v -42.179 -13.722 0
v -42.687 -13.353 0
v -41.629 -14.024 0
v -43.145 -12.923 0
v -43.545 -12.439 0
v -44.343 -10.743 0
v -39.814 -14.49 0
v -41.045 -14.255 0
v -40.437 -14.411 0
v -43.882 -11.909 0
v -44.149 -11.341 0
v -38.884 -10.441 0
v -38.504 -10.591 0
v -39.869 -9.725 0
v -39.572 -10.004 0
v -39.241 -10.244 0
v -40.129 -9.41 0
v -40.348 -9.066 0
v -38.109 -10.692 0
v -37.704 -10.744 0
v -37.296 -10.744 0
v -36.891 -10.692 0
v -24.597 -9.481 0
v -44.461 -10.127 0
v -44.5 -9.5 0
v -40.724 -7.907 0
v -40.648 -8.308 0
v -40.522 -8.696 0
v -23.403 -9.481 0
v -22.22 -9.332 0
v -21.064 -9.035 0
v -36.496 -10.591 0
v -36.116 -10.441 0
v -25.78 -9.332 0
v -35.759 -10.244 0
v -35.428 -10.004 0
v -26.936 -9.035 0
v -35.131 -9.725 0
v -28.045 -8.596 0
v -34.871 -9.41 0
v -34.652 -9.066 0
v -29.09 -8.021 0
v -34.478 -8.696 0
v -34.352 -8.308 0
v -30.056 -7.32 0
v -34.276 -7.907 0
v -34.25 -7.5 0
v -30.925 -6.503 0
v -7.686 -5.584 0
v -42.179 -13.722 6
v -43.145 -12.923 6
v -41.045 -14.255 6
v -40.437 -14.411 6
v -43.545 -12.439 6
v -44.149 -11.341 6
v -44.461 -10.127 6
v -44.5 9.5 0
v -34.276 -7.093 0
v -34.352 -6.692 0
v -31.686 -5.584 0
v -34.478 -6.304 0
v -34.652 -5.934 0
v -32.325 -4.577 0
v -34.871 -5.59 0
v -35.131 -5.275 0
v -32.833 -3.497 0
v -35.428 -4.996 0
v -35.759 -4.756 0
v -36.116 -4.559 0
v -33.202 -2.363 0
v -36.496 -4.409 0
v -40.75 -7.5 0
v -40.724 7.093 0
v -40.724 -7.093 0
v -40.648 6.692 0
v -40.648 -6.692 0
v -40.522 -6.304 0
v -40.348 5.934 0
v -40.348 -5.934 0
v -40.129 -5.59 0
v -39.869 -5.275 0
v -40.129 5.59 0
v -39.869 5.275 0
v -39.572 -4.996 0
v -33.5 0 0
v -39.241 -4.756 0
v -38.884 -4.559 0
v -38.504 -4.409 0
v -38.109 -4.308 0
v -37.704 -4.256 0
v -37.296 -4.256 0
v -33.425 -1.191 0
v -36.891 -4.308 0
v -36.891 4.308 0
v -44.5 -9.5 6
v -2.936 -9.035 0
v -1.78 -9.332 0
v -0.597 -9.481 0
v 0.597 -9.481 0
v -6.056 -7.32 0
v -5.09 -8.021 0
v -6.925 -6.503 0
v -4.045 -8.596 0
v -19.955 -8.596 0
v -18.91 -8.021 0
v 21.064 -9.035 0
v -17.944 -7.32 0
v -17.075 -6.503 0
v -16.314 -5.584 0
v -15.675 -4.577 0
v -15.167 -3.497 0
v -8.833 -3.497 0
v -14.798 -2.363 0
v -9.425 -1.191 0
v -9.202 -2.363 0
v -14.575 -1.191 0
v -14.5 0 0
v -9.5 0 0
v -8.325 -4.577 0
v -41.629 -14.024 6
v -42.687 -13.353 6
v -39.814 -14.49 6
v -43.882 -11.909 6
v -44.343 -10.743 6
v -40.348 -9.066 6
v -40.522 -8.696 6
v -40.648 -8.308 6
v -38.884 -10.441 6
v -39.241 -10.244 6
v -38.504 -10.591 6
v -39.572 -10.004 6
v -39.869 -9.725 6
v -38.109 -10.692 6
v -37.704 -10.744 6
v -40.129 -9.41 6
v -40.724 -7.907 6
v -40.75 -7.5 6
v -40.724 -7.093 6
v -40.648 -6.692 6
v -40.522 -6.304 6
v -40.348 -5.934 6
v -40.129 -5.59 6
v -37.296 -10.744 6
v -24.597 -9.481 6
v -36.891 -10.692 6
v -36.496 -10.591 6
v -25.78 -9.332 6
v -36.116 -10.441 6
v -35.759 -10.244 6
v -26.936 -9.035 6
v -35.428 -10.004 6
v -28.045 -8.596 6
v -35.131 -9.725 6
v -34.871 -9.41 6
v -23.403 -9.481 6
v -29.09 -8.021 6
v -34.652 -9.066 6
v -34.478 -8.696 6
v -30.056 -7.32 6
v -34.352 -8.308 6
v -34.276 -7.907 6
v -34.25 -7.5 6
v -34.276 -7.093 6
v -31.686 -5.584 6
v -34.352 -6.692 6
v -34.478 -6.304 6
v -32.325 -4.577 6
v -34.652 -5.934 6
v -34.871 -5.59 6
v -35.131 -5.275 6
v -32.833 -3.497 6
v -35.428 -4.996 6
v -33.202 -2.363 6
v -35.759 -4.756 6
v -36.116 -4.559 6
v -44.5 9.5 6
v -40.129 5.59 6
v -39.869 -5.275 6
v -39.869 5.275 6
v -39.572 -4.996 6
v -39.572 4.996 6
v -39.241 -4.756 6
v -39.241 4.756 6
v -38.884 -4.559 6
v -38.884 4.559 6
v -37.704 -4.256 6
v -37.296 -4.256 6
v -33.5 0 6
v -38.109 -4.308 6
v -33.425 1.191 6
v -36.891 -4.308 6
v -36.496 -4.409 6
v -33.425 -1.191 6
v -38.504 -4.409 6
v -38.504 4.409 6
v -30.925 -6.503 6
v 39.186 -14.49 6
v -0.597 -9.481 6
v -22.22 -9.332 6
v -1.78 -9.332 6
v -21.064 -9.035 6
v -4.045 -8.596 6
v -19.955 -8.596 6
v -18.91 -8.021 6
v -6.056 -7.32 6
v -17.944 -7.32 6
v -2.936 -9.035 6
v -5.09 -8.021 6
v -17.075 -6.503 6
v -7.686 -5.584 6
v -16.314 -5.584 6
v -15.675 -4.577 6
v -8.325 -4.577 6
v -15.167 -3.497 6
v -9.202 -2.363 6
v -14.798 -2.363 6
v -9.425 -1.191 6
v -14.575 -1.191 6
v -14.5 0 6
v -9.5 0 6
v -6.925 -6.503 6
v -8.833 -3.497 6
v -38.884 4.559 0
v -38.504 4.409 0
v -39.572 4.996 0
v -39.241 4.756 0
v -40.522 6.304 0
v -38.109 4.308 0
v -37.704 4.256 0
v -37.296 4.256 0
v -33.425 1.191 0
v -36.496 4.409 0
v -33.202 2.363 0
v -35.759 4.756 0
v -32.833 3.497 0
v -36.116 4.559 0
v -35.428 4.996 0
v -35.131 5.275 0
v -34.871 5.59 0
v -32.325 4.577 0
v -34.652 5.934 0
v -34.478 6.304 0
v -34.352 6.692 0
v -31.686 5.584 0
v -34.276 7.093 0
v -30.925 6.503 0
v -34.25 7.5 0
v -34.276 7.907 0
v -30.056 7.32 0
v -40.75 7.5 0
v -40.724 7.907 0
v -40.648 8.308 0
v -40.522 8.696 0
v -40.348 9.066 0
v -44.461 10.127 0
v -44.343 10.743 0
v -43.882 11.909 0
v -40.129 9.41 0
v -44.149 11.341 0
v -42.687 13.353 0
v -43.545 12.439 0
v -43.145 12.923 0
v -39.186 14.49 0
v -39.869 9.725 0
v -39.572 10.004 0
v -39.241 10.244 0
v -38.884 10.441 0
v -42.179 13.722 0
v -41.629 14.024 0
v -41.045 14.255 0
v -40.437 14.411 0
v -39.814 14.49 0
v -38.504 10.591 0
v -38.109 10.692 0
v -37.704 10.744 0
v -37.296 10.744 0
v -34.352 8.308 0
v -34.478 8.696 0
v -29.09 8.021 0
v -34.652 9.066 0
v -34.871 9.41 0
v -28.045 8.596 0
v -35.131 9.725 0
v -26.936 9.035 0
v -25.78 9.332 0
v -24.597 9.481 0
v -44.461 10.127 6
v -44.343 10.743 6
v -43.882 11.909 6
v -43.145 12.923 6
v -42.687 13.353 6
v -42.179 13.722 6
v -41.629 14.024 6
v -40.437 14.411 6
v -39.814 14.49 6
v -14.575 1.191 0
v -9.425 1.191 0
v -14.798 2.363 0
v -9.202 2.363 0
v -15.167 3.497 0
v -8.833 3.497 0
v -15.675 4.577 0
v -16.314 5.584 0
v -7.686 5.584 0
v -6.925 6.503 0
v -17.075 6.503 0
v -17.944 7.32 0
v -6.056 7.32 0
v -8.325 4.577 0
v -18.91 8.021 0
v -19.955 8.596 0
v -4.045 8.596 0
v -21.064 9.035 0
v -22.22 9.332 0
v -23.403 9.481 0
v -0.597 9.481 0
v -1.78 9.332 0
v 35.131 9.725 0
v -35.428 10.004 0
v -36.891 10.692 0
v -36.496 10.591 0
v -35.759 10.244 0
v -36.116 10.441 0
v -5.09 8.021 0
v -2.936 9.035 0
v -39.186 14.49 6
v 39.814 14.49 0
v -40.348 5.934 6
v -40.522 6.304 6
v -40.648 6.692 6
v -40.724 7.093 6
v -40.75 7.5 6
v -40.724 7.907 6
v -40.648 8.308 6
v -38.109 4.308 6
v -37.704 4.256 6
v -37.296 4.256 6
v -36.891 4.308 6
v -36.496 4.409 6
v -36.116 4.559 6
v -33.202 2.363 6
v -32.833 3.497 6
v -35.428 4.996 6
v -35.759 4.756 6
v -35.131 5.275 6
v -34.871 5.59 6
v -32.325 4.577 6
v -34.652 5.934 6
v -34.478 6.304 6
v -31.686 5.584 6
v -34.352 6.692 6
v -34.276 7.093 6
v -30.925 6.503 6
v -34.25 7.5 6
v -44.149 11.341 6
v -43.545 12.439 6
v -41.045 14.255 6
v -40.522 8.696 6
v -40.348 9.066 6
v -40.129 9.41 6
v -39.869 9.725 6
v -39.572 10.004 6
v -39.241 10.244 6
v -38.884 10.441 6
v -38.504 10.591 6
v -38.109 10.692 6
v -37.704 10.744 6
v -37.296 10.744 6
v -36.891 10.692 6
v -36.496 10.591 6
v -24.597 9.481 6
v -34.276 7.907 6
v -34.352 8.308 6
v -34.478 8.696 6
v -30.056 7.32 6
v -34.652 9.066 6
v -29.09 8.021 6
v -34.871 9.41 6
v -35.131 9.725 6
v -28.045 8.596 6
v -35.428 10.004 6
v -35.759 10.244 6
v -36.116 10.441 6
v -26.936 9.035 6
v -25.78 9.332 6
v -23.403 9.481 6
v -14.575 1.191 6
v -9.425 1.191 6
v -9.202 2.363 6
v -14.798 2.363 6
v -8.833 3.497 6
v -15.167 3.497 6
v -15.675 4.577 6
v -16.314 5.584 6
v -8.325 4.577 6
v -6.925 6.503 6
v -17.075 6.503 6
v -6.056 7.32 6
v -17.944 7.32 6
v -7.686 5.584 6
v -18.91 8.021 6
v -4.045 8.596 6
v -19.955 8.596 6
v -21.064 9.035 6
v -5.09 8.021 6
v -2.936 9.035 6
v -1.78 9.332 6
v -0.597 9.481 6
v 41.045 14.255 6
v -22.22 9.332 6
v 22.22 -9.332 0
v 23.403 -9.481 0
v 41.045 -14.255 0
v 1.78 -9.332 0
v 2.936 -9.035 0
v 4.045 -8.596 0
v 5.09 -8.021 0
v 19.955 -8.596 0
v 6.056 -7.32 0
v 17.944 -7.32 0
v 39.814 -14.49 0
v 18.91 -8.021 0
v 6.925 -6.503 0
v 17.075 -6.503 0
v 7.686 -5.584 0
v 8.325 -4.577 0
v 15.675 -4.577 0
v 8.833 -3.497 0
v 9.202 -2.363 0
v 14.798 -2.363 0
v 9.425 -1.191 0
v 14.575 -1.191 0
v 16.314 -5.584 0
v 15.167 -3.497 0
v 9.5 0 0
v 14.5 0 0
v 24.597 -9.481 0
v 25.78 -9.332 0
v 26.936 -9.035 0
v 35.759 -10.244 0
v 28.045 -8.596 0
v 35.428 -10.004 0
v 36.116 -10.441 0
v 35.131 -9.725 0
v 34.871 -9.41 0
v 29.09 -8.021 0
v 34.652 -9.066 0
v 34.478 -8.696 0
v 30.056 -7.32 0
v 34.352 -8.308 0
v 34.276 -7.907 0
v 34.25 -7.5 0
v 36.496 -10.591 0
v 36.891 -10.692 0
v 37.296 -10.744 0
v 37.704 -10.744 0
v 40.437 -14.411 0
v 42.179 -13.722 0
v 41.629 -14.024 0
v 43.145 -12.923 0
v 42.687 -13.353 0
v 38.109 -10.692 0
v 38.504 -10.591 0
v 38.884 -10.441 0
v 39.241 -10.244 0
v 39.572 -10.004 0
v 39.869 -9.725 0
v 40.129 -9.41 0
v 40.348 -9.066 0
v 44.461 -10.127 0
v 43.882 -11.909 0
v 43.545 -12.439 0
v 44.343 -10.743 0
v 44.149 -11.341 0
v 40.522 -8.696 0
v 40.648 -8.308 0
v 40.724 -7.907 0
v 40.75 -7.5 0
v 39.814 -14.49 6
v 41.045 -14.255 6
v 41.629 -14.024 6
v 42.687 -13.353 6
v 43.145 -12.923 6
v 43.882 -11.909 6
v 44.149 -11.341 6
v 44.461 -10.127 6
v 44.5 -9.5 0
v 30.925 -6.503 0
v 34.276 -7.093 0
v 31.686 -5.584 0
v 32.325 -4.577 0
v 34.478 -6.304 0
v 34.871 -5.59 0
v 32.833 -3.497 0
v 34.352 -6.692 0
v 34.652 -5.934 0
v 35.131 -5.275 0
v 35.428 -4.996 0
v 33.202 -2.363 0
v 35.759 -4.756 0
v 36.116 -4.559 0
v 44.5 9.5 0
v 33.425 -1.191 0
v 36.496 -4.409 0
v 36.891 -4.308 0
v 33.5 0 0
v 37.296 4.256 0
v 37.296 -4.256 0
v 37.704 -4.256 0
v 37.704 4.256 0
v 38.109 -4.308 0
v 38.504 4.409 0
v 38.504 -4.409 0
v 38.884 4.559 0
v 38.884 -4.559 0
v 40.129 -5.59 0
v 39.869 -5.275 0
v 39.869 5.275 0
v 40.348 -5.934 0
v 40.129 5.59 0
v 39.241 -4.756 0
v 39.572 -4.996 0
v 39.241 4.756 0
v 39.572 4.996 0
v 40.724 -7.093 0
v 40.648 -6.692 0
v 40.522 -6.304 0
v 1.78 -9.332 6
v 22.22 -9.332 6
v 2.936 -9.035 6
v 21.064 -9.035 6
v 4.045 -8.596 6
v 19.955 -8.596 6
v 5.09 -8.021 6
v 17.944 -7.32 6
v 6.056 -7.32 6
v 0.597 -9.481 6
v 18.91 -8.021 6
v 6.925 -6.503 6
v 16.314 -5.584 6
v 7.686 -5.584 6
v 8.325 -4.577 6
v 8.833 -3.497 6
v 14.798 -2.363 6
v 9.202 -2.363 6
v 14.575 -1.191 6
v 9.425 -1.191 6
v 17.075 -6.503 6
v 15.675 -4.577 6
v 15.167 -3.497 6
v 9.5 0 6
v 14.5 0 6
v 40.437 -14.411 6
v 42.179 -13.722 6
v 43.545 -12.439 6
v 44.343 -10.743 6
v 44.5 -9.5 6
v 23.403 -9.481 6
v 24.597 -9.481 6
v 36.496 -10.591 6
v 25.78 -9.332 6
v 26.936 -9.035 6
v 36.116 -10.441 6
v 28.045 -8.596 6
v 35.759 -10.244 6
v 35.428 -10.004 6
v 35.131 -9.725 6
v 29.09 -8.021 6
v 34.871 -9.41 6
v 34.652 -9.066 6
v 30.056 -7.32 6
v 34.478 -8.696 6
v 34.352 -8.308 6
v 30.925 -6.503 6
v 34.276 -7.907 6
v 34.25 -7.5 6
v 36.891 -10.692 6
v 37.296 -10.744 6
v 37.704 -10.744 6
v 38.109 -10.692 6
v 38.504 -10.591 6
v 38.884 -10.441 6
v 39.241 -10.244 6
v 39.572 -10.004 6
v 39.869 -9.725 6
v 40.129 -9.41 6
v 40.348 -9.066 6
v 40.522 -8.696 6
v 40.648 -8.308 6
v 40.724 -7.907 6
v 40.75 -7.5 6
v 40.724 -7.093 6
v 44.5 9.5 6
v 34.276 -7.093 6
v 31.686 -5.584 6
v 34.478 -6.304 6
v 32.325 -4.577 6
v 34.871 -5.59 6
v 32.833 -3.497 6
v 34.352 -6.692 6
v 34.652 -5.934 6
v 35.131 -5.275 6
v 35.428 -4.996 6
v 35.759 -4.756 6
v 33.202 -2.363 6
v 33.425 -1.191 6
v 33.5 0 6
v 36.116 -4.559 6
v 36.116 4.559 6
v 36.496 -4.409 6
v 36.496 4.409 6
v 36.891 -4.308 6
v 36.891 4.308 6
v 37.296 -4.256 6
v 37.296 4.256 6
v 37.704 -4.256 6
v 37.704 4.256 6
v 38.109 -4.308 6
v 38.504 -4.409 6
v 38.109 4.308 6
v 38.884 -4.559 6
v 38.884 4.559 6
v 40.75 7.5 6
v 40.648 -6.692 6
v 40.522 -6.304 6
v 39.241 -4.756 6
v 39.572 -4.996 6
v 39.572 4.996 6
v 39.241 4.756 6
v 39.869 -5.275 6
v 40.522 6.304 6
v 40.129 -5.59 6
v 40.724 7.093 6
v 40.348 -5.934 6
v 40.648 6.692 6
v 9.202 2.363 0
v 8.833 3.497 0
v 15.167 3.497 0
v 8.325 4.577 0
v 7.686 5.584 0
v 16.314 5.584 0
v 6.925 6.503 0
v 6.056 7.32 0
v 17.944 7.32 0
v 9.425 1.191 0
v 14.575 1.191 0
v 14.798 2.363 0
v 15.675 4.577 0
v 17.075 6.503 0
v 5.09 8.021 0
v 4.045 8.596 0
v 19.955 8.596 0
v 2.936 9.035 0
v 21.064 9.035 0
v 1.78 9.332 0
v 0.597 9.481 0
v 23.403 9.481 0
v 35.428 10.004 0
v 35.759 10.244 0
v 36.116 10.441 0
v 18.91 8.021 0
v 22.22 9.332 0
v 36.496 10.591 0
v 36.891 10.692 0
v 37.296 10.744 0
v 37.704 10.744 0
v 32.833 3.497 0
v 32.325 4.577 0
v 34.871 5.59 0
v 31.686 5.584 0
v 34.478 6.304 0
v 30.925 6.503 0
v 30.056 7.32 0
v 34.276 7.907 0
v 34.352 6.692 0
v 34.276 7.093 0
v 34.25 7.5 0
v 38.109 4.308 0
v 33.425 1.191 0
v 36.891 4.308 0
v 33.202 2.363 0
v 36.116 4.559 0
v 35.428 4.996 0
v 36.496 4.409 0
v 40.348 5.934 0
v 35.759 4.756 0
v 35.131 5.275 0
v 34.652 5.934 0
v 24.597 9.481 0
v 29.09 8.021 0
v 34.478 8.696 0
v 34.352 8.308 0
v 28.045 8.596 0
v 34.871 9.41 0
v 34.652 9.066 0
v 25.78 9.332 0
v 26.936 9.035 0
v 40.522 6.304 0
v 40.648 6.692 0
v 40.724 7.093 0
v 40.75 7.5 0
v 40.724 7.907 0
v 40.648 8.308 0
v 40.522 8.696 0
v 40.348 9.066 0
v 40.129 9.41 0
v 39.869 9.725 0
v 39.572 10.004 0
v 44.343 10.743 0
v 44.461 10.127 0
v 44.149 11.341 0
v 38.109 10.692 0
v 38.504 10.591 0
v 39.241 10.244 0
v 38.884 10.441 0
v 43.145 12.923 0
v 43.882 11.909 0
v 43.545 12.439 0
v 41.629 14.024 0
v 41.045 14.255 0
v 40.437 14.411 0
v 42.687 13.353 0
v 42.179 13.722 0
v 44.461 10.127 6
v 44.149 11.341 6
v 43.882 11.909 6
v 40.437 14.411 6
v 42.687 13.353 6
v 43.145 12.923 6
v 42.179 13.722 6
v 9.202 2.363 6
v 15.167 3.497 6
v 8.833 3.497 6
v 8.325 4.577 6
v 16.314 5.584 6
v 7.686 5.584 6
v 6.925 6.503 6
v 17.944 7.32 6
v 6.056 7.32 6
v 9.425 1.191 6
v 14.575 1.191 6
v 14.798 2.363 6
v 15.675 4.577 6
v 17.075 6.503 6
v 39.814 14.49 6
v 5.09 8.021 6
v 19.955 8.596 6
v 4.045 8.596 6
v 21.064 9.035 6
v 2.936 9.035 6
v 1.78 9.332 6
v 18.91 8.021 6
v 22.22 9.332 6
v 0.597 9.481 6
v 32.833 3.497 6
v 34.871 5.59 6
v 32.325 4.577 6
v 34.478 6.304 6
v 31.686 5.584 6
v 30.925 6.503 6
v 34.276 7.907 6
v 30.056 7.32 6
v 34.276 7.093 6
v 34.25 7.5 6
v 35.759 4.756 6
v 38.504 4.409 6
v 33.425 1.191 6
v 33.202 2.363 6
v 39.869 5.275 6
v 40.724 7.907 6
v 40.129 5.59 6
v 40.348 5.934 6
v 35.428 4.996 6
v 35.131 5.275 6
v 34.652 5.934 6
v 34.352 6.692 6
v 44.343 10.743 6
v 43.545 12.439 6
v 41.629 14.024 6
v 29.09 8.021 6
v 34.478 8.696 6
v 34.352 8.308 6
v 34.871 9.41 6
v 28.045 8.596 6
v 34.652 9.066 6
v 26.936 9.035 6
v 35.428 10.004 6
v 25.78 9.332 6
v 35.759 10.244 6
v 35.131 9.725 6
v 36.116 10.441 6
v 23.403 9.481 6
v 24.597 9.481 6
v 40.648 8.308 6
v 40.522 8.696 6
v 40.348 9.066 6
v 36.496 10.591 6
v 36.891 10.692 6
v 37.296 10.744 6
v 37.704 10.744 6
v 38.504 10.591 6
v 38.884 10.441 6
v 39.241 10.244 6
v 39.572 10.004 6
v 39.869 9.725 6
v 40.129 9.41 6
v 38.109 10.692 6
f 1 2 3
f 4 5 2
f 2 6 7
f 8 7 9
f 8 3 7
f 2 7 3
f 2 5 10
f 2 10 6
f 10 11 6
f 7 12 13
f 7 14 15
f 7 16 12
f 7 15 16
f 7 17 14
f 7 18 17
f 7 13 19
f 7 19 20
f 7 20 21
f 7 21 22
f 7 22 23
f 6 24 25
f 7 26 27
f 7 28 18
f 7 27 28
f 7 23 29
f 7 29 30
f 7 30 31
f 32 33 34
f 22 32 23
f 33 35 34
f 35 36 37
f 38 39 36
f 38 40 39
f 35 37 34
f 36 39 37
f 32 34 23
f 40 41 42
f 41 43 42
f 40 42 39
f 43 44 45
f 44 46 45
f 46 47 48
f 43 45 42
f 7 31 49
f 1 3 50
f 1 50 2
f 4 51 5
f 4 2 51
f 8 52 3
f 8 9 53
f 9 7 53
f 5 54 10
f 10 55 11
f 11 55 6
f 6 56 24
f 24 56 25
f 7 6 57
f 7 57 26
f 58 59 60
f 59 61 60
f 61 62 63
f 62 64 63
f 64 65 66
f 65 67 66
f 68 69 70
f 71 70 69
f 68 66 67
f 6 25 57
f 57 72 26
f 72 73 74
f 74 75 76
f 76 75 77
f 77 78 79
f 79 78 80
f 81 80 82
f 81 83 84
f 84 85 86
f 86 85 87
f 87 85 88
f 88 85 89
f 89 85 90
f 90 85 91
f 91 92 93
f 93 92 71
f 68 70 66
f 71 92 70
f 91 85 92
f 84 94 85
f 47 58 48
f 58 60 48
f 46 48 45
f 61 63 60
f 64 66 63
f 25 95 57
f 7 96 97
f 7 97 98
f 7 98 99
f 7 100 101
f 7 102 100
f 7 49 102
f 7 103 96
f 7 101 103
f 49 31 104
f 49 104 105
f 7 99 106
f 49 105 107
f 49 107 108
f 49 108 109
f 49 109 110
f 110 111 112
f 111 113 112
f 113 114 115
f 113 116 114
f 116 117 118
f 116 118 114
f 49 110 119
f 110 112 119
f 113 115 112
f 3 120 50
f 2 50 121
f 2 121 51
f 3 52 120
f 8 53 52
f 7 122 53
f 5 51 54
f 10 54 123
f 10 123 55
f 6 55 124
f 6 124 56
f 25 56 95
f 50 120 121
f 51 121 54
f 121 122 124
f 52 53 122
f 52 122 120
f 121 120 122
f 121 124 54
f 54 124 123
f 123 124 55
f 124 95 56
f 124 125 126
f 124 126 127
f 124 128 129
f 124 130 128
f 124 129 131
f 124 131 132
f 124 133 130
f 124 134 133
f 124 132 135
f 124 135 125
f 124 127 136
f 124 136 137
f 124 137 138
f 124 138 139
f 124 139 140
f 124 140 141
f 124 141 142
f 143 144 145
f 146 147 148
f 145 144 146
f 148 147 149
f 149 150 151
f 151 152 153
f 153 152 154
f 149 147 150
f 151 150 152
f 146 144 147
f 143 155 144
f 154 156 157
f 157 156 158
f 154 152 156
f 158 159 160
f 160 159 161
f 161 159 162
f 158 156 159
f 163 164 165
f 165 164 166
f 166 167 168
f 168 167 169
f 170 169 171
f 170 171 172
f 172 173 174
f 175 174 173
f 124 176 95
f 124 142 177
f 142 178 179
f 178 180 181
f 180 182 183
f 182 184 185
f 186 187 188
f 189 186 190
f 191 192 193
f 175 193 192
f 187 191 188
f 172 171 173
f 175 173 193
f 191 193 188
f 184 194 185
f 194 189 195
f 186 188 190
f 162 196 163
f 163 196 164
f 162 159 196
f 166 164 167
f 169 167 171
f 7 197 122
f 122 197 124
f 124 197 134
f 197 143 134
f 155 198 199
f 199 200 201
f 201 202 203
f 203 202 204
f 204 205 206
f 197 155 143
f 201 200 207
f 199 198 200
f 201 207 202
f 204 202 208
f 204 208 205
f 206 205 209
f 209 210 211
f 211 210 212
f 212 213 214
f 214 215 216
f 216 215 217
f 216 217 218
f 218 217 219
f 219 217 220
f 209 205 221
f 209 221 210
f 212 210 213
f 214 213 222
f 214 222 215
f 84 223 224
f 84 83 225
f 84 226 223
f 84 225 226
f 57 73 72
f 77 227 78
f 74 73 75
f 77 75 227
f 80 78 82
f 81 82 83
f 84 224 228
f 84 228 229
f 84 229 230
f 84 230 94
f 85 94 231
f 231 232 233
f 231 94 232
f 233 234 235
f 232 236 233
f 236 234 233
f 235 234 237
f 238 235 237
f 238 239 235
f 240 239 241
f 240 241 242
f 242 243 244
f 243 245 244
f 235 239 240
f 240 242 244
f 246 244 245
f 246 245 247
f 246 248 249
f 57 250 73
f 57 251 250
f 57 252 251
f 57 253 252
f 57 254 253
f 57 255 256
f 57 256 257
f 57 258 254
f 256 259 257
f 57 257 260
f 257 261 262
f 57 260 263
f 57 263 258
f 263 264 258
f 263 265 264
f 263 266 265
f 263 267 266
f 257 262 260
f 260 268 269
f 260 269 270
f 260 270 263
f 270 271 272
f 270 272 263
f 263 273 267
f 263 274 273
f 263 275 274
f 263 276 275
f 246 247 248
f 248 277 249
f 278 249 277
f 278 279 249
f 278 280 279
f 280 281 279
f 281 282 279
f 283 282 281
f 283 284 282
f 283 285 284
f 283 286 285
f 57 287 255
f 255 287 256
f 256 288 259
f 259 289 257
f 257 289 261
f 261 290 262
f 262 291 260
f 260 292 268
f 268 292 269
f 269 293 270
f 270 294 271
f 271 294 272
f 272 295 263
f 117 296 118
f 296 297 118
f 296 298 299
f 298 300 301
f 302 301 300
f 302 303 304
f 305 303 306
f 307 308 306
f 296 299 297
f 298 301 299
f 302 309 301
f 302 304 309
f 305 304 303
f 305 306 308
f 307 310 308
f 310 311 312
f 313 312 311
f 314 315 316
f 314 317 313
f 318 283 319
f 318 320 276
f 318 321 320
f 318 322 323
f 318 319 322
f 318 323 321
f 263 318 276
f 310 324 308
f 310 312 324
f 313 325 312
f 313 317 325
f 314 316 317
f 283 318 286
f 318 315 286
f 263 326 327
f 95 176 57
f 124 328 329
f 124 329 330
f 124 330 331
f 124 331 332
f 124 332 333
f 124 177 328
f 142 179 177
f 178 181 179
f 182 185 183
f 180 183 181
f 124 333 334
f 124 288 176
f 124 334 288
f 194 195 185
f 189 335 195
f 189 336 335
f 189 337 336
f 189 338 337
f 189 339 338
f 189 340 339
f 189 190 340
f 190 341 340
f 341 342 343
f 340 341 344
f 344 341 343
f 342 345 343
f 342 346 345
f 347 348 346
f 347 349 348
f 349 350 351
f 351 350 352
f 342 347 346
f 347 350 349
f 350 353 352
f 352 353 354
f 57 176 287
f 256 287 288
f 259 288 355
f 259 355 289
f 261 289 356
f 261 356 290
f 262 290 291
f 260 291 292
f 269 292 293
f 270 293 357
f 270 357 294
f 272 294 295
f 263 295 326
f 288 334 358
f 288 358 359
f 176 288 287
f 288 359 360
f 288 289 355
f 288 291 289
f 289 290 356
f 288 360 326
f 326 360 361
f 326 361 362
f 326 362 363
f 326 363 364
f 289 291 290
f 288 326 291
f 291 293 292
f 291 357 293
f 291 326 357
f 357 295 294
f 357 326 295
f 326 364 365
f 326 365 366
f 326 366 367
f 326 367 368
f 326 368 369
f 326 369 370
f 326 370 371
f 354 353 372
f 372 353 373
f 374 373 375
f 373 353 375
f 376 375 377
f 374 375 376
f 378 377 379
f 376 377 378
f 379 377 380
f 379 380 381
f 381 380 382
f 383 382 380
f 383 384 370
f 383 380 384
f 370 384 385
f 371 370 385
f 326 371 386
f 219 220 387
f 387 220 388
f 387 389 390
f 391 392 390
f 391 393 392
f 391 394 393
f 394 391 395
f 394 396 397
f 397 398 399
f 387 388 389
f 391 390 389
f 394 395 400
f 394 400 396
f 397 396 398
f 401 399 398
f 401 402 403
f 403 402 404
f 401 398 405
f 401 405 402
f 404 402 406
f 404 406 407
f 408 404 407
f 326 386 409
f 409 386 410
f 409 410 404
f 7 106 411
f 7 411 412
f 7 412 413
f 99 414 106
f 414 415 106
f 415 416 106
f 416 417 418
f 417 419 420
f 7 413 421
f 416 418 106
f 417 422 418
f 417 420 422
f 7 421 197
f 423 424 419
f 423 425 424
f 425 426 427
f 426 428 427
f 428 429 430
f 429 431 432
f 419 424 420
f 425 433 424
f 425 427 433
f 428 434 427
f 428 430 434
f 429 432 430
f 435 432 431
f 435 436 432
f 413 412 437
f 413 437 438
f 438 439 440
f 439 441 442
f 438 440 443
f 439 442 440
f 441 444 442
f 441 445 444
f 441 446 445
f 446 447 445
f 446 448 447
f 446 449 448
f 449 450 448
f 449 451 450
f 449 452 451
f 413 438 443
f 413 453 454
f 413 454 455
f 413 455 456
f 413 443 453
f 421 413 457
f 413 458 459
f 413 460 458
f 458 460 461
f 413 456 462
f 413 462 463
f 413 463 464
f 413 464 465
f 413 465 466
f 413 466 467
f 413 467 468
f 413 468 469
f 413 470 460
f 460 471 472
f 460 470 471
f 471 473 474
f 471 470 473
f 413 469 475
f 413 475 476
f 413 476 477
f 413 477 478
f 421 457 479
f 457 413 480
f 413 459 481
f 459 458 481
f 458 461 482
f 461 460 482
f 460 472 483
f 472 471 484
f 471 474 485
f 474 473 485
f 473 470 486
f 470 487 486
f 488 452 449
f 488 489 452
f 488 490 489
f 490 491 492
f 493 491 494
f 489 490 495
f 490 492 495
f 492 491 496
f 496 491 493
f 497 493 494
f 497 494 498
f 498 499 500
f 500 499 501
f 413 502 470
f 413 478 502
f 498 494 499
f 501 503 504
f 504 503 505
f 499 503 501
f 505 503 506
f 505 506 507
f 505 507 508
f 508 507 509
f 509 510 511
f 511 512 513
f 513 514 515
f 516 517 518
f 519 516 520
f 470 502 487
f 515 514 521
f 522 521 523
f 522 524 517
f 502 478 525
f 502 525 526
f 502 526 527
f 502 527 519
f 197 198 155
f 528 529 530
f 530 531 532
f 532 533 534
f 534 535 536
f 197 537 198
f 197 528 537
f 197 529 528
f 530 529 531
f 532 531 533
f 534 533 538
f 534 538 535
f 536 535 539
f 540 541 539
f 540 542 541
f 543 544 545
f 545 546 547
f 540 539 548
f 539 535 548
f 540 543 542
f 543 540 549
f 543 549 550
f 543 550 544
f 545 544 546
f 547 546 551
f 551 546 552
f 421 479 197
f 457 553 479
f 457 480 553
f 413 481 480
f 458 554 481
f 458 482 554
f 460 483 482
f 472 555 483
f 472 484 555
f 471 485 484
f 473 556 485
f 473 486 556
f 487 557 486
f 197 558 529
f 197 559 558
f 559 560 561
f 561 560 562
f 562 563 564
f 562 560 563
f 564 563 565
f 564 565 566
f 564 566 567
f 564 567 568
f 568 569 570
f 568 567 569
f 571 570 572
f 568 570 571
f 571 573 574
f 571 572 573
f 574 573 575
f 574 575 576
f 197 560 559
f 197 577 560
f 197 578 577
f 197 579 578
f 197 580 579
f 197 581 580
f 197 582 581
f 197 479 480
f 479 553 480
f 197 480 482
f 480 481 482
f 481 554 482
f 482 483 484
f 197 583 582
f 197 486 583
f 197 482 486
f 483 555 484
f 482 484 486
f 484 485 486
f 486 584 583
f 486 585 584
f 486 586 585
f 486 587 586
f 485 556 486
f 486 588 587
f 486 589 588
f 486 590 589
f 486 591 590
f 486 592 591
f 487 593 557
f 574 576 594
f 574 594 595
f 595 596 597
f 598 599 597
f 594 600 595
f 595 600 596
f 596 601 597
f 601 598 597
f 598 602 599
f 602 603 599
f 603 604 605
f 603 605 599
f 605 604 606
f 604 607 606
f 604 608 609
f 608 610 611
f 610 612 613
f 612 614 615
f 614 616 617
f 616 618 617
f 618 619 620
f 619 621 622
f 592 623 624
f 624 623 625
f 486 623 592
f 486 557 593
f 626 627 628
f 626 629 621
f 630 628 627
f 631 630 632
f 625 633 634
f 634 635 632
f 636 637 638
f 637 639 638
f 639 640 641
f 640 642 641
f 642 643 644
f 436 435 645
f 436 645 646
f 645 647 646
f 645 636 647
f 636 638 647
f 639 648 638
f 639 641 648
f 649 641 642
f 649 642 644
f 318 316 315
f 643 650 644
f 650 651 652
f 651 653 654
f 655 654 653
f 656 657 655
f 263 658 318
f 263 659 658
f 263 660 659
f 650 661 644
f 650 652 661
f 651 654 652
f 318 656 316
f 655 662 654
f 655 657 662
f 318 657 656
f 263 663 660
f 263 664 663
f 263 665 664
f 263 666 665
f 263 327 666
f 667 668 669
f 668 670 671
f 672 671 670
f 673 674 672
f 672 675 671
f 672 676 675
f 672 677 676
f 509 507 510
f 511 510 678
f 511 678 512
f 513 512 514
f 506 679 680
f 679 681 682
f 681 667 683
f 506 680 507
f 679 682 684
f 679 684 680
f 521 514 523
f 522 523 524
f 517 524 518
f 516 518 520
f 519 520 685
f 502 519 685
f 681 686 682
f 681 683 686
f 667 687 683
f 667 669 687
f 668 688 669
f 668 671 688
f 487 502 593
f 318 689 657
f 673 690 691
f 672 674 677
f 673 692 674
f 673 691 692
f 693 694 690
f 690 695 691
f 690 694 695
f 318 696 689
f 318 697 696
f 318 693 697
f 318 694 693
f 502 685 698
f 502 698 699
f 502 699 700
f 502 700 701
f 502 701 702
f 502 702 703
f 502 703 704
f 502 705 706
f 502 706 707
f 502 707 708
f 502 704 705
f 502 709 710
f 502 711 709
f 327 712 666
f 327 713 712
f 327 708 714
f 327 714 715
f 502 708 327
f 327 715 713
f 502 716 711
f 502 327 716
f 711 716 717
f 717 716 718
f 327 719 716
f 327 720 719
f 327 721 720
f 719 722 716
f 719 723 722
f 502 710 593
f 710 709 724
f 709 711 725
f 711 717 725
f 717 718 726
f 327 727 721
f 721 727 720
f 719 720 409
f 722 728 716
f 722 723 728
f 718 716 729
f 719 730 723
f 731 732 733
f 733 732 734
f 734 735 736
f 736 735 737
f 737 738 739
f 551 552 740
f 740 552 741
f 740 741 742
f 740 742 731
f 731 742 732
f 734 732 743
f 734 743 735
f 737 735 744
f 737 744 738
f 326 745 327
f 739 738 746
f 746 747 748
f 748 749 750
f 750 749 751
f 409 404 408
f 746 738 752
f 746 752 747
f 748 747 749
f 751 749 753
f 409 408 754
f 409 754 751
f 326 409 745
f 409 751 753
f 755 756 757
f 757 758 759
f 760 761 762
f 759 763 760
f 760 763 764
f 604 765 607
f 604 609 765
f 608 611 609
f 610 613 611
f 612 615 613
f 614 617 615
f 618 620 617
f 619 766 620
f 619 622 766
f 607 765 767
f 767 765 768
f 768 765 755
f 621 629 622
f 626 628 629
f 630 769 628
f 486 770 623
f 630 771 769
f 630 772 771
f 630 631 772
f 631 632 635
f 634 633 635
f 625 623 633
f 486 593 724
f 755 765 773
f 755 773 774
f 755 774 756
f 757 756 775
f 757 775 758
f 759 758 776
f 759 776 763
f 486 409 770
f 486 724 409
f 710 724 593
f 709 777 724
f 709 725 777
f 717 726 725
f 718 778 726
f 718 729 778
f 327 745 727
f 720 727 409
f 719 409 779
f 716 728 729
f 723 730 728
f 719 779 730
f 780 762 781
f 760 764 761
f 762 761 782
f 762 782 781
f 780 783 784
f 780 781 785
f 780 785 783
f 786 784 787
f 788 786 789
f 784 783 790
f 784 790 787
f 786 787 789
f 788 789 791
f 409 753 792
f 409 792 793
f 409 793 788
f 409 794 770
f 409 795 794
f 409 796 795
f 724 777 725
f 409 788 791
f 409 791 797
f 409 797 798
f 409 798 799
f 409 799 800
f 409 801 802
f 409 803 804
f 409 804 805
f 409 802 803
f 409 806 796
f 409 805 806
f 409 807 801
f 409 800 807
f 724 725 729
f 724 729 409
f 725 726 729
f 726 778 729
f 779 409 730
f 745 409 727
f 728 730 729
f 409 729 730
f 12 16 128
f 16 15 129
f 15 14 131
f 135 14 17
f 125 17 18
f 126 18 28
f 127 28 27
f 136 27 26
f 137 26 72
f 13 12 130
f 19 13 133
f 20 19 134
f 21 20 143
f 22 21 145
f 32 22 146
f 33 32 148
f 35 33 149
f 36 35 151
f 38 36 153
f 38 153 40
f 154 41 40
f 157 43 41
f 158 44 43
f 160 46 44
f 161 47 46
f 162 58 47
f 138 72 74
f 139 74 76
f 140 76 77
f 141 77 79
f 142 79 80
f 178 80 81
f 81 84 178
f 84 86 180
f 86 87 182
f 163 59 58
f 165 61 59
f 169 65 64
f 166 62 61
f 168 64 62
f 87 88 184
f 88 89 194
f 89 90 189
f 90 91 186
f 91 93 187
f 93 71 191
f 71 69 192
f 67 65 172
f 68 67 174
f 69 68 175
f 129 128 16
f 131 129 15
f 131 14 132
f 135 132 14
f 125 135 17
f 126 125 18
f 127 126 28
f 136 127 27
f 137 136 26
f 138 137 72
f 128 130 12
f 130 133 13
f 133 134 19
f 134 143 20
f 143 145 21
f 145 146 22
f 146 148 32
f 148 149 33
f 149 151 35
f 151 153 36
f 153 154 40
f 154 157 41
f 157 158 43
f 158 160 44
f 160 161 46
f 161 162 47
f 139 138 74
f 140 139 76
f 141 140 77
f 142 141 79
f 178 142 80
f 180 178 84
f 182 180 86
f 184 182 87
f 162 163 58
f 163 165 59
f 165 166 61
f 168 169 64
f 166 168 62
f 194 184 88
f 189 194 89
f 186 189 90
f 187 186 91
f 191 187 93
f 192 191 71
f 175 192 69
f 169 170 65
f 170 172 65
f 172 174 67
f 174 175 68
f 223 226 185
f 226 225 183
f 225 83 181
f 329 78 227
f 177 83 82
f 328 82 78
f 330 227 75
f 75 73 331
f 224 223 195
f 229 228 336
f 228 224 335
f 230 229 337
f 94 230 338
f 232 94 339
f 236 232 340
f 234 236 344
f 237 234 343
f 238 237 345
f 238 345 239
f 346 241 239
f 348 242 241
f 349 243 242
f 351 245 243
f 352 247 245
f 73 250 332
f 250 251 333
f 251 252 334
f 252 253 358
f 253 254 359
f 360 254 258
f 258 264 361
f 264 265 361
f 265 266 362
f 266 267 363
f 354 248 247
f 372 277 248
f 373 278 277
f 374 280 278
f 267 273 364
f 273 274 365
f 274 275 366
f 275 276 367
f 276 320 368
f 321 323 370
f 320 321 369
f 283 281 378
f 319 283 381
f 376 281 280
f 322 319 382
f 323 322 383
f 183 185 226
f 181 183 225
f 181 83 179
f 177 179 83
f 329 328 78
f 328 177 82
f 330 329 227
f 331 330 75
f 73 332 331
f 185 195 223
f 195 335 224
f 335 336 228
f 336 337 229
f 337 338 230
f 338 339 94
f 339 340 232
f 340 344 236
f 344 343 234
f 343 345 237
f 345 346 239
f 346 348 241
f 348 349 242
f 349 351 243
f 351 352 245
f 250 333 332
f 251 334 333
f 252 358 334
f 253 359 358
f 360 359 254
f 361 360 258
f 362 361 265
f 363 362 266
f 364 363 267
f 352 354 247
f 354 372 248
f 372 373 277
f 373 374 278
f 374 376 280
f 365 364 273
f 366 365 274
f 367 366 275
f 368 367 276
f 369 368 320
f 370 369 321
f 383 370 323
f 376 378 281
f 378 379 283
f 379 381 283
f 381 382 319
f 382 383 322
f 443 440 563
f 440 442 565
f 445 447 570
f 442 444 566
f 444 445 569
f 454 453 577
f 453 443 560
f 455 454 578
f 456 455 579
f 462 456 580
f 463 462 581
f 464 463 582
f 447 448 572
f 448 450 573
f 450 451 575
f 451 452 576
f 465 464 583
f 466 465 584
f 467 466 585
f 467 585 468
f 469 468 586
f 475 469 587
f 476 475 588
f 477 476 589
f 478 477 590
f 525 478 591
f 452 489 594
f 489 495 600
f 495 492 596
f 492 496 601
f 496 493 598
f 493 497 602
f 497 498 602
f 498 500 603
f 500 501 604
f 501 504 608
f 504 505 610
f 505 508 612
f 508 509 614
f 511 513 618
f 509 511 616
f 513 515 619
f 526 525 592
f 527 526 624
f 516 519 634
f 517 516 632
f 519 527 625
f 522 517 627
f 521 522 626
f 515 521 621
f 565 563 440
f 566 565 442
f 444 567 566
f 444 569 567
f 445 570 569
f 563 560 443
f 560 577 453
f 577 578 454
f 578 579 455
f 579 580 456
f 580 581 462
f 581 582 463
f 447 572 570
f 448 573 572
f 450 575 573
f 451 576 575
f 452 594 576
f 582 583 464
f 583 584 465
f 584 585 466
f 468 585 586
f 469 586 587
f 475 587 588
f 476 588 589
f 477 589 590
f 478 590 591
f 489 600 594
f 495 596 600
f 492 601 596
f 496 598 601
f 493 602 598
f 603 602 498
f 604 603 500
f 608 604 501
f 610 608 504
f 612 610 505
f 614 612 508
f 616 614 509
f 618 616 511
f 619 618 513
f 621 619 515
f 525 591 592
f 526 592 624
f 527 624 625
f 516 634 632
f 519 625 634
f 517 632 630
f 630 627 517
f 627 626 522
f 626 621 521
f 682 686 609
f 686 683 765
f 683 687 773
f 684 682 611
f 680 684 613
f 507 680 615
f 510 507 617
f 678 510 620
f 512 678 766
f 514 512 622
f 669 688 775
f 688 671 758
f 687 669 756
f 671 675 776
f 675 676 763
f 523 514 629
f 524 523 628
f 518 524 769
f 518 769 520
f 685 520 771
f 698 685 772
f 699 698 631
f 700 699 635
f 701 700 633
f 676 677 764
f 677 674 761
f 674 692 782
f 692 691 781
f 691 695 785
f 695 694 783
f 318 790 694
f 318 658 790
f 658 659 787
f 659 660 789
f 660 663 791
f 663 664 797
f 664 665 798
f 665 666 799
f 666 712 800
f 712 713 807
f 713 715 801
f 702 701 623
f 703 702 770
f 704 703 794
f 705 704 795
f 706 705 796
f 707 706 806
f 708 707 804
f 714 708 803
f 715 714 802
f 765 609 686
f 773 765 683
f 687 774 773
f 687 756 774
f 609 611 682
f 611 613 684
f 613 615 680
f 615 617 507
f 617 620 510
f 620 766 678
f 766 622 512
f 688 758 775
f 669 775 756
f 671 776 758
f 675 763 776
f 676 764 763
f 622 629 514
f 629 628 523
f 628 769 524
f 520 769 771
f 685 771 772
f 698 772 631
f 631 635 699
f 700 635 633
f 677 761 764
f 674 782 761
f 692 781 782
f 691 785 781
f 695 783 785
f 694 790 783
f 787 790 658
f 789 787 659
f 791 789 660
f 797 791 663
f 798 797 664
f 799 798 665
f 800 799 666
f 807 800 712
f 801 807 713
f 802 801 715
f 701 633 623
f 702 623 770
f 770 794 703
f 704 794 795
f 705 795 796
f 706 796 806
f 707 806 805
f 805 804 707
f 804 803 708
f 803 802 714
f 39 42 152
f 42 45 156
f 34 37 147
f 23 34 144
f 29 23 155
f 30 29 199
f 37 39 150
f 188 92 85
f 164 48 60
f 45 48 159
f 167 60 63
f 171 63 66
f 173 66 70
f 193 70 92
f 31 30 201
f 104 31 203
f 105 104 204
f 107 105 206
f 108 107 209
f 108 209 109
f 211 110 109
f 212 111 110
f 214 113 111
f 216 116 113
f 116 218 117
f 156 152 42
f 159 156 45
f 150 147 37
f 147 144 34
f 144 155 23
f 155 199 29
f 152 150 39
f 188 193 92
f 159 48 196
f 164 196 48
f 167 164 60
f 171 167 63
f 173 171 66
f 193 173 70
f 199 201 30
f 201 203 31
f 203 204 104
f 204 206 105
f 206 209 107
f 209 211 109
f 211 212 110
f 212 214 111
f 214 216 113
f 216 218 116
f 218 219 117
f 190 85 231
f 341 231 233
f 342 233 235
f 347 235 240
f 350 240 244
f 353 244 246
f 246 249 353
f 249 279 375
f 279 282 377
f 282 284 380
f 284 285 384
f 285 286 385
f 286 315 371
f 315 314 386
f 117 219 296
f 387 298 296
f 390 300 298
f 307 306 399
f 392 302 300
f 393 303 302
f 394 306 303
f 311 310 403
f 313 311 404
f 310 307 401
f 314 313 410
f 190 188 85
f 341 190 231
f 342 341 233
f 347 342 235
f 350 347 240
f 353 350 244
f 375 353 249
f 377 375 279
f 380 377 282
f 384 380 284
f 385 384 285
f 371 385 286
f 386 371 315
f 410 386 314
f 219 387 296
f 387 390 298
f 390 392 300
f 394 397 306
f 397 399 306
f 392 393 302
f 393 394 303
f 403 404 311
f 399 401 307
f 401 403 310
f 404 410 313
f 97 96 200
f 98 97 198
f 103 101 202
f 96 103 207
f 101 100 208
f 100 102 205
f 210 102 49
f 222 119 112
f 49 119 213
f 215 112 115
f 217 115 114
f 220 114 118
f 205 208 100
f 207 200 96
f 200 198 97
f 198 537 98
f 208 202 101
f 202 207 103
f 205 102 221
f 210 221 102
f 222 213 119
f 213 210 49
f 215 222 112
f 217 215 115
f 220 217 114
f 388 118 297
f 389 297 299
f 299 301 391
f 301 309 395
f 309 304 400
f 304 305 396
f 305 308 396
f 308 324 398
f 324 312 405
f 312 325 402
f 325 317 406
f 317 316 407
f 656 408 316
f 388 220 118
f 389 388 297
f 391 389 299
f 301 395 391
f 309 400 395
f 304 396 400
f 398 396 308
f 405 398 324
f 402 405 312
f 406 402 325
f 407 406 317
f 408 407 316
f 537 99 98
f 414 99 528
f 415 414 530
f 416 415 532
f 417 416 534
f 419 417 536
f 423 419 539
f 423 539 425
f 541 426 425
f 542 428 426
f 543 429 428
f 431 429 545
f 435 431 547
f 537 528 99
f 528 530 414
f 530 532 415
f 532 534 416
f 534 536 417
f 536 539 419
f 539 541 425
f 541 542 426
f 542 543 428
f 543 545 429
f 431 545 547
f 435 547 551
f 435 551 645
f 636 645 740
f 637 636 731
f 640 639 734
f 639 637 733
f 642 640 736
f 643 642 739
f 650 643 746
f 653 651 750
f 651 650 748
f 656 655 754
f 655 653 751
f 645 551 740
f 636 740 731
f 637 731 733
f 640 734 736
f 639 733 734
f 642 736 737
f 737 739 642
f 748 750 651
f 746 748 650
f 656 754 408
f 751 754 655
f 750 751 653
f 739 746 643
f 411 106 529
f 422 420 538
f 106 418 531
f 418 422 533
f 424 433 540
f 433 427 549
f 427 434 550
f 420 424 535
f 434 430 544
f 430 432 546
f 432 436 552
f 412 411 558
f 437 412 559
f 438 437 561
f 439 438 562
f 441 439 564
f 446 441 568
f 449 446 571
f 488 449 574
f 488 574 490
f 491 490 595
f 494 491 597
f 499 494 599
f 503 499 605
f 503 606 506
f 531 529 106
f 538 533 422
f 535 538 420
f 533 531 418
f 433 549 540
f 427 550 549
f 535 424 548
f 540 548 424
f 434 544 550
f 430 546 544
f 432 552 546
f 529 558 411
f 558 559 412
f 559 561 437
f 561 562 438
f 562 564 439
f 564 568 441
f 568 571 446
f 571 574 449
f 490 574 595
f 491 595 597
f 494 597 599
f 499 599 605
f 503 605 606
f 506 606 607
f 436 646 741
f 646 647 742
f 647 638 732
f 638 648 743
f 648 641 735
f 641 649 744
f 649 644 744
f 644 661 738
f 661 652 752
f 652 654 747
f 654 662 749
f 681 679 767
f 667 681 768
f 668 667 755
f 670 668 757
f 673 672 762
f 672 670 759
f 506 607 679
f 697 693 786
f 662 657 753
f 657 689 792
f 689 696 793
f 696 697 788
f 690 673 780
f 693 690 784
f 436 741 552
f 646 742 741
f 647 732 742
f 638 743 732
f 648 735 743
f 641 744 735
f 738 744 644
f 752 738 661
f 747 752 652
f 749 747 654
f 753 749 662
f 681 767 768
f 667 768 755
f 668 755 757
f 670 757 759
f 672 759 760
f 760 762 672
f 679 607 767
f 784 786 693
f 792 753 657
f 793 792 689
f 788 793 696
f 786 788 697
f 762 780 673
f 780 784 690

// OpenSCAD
$fn = 50;

difference() {
	union() {
		hull() {
			translate(v = [-39.5, 9.5, 0]) {
				cylinder(h = 6, r = 5);
			}
			translate(v = [39.5, 9.5, 0]) {
				cylinder(h = 6, r = 5);
			}
			translate(v = [-39.5, -9.5, 0]) {
				cylinder(h = 6, r = 5);
			}
			translate(v = [39.5, -9.5, 0]) {
				cylinder(h = 6, r = 5);
			}
		}
	}
	union() {
		translate(v = [-37.5, -7.5, 0]) {
			cylinder(h = 6, r = 3.25);
		}
		translate(v = [-37.5, 7.5, 0]) {
			cylinder(h = 6, r = 3.25);
		}
		translate(v = [37.5, -7.5, 0]) {
			cylinder(h = 6, r = 3.25);
		}
		translate(v = [37.5, 7.5, 0]) {
			cylinder(h = 6, r = 3.25);
		}
		translate(v = [-24.0, 0, 0.0]) {
			cylinder(h = 6, r = 9.5);
		}
		cylinder(h = 6, r = 9.5);
		translate(v = [24.0, 0, 0.0]) {
			cylinder(h = 6, r = 9.5);
		}
	}
}
